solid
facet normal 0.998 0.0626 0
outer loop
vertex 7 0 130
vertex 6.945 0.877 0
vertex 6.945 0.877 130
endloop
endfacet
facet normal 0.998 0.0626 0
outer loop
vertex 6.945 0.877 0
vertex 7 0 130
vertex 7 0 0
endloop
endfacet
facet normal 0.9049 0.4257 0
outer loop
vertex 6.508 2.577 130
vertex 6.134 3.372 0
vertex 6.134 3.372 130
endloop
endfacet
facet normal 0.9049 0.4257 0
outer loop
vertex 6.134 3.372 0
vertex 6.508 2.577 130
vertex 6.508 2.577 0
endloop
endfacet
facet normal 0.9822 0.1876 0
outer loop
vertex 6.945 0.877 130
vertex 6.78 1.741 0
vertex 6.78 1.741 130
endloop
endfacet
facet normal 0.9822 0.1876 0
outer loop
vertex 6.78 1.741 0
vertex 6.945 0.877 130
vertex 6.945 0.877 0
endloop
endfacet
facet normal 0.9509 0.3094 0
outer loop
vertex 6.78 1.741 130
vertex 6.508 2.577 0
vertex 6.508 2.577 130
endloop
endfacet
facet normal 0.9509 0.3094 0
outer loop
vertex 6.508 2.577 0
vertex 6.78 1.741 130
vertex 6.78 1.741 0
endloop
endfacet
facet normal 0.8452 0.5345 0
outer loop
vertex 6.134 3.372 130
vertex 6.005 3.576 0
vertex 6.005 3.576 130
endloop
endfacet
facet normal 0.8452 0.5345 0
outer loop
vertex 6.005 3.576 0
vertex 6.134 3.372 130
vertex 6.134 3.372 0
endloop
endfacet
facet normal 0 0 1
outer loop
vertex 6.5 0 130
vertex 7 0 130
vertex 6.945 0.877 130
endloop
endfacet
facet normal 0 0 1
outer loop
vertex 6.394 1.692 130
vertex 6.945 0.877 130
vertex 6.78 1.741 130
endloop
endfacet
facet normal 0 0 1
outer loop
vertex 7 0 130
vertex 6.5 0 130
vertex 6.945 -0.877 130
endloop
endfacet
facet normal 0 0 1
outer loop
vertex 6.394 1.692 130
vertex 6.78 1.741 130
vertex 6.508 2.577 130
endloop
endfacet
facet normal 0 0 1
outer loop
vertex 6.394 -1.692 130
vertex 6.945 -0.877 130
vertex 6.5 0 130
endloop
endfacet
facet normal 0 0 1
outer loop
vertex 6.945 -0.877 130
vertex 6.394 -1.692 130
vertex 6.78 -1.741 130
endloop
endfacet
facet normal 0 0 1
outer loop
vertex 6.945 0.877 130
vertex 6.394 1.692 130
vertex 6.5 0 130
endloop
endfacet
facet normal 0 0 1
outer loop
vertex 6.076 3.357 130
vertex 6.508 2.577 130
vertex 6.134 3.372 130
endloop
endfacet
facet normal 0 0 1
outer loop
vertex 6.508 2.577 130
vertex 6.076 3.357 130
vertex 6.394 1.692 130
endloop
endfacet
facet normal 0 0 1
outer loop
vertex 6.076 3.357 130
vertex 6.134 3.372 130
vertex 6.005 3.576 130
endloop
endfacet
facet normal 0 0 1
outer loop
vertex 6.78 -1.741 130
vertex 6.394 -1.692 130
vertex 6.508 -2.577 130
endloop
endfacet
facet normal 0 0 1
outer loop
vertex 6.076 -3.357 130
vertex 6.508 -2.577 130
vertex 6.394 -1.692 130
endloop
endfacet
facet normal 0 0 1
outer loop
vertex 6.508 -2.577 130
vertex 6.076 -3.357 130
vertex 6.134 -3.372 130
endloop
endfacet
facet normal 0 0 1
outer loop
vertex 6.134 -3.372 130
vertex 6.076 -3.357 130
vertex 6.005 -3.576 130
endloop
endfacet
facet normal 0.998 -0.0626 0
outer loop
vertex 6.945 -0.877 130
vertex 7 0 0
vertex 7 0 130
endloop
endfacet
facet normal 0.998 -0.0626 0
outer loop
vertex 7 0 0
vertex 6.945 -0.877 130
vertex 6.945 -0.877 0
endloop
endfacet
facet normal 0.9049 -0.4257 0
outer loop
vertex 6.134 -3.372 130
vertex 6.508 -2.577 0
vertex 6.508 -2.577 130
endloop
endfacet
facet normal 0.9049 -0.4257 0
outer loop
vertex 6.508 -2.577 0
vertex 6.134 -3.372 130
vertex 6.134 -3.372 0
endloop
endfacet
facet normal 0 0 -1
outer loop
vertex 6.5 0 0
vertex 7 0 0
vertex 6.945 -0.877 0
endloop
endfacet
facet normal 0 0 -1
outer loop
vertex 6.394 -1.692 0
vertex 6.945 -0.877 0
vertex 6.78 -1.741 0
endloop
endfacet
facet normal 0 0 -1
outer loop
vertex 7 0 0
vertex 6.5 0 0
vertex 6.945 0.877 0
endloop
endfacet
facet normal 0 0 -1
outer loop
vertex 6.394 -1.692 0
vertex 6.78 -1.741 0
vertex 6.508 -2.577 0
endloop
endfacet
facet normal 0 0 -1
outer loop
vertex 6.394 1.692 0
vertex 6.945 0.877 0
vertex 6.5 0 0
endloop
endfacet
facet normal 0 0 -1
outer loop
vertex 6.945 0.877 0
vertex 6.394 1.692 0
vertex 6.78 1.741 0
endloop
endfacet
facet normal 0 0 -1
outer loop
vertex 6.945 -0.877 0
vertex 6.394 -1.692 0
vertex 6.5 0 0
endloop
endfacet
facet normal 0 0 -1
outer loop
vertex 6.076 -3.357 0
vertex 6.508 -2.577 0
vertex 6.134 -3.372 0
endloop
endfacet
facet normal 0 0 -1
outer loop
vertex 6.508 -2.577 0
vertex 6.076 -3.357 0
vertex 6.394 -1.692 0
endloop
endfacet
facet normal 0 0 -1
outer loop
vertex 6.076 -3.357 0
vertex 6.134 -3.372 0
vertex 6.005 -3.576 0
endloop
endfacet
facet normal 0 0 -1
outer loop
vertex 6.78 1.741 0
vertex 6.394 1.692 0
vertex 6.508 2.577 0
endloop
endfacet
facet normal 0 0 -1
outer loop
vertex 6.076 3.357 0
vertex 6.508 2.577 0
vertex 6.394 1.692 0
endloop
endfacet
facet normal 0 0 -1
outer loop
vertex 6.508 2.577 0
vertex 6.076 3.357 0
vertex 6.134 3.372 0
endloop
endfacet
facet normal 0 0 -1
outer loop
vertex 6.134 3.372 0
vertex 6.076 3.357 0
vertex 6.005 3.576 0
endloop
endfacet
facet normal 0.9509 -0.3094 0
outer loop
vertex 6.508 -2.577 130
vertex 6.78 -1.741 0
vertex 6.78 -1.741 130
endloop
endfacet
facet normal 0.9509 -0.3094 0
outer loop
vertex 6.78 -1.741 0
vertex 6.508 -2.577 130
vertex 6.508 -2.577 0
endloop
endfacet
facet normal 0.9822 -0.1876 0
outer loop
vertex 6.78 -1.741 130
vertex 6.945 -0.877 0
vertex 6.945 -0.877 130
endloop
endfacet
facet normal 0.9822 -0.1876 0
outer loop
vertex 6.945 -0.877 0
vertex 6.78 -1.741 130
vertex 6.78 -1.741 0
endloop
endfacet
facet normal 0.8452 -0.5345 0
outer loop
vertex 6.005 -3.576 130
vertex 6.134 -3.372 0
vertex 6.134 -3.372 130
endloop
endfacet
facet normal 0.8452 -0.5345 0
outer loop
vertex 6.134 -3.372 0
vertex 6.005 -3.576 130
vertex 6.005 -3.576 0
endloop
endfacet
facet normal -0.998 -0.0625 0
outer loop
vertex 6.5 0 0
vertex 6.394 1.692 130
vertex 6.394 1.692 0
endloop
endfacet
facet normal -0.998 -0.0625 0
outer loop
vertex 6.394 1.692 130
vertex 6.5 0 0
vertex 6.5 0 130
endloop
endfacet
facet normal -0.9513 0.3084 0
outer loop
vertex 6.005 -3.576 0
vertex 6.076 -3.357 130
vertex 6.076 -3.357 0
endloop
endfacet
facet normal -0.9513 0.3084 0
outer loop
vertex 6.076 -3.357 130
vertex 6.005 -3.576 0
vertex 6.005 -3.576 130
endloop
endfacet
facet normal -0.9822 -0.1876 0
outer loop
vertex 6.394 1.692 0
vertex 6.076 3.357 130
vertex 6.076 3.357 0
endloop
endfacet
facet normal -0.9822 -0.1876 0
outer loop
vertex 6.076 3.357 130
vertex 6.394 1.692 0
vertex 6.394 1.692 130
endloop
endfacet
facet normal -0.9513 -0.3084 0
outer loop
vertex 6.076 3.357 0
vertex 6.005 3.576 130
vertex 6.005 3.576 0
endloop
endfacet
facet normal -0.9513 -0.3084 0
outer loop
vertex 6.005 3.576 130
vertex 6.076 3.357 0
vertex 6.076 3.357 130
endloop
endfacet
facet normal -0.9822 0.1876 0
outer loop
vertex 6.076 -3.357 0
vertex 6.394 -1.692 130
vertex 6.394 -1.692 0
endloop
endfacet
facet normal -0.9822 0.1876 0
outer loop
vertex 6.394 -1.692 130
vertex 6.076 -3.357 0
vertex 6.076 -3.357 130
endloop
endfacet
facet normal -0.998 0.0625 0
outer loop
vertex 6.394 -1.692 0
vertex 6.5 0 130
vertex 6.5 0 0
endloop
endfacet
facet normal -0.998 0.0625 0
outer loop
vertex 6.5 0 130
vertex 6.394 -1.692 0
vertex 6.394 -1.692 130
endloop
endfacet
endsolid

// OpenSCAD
$fn = 50;


difference() {
	union() {
		cylinder(h = 130, r = 7.0000000000);
		translate(v = [-10.0000000000, 0, 0]) {
			cylinder(h = 130, r = 7.0000000000);
		}
	}
	union() {
		cylinder(h = 130, r = 3.2500000000);
		cylinder(h = 130, r = 1.8000000000);
		cylinder(h = 130, r = 1.8000000000);
		cylinder(h = 130, r = 1.8000000000);
		translate(v = [-14.5000000000, 0, 0]) {
			hull() {
				translate(v = [-3.7500000000, 0.0000000000, 0]) {
					cylinder(h = 130, r = 7.5000000000);
				}
				translate(v = [3.7500000000, 0.0000000000, 0]) {
					cylinder(h = 130, r = 7.5000000000);
				}
				translate(v = [-3.7500000000, -0.0000000000, 0]) {
					cylinder(h = 130, r = 7.5000000000);
				}
				translate(v = [3.7500000000, -0.0000000000, 0]) {
					cylinder(h = 130, r = 7.5000000000);
				}
			}
		}
		translate(v = [-7.0000000000, 0, 0.0000000000]) {
			cylinder(h = 130, r = 13.5000000000);
		}
	}
}
